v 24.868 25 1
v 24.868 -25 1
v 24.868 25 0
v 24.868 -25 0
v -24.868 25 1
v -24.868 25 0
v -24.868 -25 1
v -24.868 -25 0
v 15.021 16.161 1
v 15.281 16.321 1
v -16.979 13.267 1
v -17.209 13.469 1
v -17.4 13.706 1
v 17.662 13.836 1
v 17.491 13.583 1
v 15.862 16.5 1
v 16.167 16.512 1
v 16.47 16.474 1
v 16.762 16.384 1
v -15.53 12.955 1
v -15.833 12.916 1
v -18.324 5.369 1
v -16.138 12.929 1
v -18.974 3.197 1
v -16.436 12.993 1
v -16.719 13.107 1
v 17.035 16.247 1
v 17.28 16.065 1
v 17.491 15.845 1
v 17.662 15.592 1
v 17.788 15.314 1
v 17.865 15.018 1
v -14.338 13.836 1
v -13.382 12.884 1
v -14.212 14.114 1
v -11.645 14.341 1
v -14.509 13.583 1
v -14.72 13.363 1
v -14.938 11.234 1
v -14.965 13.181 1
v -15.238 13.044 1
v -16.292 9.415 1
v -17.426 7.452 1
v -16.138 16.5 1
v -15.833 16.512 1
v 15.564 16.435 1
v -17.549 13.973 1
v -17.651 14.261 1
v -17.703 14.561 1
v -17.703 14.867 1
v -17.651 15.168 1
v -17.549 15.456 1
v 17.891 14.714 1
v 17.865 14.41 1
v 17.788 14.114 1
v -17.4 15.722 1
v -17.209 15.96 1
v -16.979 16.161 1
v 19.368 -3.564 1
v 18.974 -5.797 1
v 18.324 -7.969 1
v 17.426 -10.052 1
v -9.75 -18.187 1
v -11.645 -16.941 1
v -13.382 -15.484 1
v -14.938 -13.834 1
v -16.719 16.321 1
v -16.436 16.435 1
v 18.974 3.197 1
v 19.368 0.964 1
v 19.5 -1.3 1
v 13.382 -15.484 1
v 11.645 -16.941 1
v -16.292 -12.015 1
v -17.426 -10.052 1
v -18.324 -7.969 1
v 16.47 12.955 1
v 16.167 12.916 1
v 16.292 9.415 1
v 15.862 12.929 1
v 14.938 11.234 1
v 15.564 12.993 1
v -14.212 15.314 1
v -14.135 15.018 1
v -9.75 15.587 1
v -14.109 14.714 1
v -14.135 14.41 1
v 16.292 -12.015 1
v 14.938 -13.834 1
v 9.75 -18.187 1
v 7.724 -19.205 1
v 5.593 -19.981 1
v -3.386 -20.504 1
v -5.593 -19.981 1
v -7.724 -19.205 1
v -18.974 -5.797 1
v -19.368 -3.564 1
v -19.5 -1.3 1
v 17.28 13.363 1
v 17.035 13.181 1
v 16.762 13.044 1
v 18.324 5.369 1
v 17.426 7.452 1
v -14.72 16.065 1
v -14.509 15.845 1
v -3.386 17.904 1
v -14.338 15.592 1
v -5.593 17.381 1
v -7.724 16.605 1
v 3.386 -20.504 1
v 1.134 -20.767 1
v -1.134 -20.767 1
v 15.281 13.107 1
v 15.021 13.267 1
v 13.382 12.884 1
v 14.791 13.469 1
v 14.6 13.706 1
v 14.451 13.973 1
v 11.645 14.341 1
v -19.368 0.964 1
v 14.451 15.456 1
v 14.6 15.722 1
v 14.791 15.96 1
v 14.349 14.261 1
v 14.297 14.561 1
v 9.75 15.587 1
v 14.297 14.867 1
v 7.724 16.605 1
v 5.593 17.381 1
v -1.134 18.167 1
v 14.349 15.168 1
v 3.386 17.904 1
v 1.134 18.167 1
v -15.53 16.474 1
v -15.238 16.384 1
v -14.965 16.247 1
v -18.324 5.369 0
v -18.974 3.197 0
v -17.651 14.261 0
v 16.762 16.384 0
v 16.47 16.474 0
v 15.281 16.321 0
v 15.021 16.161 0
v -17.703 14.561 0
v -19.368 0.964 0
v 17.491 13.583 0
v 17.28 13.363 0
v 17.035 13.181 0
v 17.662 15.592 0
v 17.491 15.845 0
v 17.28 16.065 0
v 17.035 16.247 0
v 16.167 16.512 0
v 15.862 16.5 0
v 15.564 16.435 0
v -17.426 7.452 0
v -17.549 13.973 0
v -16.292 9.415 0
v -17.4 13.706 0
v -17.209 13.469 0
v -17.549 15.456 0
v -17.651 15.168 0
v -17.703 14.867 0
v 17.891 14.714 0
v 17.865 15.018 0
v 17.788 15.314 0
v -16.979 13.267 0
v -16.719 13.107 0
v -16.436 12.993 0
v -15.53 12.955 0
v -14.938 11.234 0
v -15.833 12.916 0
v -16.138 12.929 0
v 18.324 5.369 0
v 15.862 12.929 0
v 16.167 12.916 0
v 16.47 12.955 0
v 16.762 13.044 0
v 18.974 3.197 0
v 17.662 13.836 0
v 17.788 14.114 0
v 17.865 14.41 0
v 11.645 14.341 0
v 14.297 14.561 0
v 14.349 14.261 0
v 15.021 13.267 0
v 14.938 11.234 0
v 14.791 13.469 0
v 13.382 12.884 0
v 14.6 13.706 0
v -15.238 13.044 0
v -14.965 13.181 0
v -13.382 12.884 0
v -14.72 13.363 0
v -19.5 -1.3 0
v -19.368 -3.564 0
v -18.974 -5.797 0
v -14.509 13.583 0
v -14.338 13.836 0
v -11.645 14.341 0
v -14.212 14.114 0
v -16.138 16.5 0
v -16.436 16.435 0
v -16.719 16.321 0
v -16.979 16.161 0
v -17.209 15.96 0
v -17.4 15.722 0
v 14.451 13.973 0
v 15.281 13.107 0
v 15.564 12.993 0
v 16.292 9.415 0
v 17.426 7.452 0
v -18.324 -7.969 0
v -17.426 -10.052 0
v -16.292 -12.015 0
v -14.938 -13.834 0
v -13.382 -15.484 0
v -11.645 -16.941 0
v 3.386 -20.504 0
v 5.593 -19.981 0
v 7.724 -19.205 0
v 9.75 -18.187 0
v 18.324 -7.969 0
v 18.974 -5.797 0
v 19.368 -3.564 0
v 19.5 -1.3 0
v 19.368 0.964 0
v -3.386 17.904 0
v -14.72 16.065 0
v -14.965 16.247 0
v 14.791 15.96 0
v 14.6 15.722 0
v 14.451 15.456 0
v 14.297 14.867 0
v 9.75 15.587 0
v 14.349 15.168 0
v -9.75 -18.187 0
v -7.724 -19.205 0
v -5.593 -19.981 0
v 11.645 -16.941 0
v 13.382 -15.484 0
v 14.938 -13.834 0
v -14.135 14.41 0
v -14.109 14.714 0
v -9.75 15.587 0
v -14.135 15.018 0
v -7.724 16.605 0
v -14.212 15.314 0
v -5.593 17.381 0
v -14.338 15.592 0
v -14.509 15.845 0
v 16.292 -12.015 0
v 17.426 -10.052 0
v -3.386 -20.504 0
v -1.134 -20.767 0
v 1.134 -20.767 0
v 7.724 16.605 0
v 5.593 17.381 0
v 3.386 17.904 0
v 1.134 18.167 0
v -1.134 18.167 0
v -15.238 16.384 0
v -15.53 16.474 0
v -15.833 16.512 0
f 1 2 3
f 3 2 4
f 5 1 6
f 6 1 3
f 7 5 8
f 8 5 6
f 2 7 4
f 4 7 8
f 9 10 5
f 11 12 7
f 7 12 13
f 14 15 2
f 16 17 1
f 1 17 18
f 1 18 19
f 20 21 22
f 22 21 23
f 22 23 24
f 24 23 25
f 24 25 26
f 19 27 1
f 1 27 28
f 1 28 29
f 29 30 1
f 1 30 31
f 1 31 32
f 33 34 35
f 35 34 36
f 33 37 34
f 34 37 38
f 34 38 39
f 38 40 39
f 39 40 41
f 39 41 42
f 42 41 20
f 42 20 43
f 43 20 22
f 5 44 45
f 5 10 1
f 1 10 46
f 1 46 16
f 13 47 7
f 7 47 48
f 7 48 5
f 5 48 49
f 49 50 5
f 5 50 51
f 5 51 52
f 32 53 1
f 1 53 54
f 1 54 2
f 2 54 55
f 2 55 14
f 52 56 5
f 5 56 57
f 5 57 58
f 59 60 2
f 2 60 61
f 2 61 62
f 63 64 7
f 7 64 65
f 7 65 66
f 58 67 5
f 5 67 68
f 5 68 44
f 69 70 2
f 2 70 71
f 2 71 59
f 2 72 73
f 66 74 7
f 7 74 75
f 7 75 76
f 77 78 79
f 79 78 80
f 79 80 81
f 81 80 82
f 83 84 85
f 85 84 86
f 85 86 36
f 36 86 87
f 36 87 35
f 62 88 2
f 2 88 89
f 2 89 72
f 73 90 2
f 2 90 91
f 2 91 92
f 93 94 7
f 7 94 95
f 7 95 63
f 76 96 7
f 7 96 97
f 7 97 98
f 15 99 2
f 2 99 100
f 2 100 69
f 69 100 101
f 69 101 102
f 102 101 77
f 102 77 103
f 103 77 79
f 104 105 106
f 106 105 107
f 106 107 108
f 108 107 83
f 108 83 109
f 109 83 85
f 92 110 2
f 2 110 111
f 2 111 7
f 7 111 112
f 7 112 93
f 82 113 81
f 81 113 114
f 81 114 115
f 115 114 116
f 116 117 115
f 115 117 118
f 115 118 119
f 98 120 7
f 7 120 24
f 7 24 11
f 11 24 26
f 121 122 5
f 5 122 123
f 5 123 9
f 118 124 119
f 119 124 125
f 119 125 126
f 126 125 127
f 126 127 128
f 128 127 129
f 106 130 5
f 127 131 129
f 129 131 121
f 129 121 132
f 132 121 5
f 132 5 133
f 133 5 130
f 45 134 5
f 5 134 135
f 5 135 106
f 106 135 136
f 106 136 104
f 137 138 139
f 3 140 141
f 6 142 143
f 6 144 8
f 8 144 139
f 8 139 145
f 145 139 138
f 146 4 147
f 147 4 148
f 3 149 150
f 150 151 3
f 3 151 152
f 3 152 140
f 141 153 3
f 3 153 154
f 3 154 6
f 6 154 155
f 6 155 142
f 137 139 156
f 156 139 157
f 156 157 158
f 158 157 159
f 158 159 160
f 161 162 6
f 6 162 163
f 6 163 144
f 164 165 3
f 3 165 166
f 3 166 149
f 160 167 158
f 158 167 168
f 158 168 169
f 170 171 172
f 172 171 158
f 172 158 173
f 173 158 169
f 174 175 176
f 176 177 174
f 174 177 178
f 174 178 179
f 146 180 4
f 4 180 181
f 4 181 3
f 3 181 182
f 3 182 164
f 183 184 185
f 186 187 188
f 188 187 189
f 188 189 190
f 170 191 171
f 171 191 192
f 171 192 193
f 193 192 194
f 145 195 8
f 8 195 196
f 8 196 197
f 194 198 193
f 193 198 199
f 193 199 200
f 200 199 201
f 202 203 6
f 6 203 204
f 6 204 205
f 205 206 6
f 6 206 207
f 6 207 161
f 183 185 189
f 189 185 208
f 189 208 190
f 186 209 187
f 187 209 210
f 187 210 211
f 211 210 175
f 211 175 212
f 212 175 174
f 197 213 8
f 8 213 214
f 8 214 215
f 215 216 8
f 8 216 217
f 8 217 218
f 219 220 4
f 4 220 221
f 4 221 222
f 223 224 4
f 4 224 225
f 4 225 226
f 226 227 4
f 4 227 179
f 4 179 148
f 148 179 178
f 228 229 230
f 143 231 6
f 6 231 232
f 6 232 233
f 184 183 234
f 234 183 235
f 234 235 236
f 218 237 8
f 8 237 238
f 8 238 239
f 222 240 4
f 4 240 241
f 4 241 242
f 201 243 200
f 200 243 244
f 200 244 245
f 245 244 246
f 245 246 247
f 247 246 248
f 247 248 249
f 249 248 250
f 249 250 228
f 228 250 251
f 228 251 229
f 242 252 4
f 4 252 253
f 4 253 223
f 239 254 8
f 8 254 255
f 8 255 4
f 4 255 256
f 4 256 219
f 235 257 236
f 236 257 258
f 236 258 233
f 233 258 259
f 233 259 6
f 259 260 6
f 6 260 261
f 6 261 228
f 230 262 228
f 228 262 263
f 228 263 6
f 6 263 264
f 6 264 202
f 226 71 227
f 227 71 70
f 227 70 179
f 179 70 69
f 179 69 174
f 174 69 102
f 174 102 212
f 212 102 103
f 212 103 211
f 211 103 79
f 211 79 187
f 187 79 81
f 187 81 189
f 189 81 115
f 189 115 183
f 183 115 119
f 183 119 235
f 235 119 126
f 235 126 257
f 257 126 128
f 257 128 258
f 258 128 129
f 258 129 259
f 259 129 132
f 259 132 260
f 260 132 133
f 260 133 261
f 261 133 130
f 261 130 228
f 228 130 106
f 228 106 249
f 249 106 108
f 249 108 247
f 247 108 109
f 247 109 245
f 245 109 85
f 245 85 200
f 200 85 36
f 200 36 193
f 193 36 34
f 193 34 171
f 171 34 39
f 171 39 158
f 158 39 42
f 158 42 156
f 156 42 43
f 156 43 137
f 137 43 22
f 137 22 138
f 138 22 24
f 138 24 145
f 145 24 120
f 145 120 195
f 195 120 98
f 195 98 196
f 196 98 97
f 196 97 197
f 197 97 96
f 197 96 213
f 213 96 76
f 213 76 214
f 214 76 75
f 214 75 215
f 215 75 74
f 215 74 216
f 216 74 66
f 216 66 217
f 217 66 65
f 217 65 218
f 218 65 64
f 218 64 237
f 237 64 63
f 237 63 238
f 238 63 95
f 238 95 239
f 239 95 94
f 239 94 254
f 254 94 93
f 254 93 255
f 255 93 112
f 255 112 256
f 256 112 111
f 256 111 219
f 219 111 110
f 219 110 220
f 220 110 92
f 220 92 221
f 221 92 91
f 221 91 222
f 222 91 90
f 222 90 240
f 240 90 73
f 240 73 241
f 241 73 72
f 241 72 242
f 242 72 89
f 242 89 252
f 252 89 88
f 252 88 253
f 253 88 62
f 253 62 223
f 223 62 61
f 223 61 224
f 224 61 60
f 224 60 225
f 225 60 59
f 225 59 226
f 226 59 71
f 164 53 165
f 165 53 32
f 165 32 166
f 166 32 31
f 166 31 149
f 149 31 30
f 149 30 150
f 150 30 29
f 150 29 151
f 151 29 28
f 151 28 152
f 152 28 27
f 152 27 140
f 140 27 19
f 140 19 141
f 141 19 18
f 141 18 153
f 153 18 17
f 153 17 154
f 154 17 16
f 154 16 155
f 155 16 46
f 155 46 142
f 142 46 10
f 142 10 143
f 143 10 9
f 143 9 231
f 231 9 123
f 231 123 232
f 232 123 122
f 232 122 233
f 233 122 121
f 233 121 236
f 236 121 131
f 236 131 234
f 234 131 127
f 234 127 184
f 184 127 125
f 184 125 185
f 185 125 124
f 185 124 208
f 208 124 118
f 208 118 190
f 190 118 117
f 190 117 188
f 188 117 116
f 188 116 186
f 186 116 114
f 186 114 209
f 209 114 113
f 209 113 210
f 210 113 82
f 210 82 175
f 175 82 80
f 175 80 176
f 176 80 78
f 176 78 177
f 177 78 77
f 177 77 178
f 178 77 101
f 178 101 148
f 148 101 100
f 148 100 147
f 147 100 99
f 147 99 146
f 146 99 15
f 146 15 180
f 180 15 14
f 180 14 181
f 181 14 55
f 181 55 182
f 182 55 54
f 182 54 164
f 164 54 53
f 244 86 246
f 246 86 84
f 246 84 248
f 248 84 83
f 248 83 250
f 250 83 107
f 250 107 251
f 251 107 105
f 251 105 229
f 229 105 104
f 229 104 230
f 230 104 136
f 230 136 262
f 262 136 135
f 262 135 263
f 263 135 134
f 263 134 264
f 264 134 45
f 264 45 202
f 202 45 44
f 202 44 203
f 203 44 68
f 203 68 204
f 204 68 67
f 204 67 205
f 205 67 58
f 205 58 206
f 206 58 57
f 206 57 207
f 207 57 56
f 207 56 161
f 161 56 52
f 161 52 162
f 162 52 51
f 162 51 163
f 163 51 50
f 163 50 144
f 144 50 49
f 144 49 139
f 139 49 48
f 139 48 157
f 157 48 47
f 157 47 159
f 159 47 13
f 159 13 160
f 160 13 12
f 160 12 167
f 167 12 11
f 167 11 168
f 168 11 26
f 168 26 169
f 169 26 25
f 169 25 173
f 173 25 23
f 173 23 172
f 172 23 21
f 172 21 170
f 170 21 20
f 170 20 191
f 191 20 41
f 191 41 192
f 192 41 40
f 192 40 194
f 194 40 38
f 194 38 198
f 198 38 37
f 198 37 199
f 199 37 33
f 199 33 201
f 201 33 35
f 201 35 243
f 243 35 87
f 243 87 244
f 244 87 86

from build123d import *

# Parameters (mm, degrees)
SKETCH2_W           = 49.736379614
SKETCH2_H           = 50
BOSS_EXTRUDE2_DEPTH = 1
SKETCH3_R           = 19.5
CUT_EXTRUDE1_DEPTH  = 1
SKETCH6_R           = 1.8
CUT_EXTRUDE2_DEPTH  = 2


with BuildPart() as part:
    # Sketch2 → Boss-Extrude2 (new body)
    with BuildSketch(Plane.XY):
        Rectangle(SKETCH2_W, SKETCH2_H)
    extrude(amount=BOSS_EXTRUDE2_DEPTH)

    # Sketch3 → Cut-Extrude1 (cut)
    with BuildSketch(Plane.XY.offset(1)):
        with Locations((0, -1.3)):
            Circle(SKETCH3_R)
    extrude(amount=-CUT_EXTRUDE1_DEPTH, mode=Mode.SUBTRACT)

    # Sketch6 → Cut-Extrude2 (cut, through all)
    with BuildSketch(Plane.XY.offset(1)):
        with Locations((-15.908992298, 14.714110903)):
            Circle(SKETCH6_R)
        with Locations((16.091007702, 14.714110903)):
            Circle(SKETCH6_R)
    extrude(amount=-CUT_EXTRUDE2_DEPTH, mode=Mode.SUBTRACT)


solid = part.part
